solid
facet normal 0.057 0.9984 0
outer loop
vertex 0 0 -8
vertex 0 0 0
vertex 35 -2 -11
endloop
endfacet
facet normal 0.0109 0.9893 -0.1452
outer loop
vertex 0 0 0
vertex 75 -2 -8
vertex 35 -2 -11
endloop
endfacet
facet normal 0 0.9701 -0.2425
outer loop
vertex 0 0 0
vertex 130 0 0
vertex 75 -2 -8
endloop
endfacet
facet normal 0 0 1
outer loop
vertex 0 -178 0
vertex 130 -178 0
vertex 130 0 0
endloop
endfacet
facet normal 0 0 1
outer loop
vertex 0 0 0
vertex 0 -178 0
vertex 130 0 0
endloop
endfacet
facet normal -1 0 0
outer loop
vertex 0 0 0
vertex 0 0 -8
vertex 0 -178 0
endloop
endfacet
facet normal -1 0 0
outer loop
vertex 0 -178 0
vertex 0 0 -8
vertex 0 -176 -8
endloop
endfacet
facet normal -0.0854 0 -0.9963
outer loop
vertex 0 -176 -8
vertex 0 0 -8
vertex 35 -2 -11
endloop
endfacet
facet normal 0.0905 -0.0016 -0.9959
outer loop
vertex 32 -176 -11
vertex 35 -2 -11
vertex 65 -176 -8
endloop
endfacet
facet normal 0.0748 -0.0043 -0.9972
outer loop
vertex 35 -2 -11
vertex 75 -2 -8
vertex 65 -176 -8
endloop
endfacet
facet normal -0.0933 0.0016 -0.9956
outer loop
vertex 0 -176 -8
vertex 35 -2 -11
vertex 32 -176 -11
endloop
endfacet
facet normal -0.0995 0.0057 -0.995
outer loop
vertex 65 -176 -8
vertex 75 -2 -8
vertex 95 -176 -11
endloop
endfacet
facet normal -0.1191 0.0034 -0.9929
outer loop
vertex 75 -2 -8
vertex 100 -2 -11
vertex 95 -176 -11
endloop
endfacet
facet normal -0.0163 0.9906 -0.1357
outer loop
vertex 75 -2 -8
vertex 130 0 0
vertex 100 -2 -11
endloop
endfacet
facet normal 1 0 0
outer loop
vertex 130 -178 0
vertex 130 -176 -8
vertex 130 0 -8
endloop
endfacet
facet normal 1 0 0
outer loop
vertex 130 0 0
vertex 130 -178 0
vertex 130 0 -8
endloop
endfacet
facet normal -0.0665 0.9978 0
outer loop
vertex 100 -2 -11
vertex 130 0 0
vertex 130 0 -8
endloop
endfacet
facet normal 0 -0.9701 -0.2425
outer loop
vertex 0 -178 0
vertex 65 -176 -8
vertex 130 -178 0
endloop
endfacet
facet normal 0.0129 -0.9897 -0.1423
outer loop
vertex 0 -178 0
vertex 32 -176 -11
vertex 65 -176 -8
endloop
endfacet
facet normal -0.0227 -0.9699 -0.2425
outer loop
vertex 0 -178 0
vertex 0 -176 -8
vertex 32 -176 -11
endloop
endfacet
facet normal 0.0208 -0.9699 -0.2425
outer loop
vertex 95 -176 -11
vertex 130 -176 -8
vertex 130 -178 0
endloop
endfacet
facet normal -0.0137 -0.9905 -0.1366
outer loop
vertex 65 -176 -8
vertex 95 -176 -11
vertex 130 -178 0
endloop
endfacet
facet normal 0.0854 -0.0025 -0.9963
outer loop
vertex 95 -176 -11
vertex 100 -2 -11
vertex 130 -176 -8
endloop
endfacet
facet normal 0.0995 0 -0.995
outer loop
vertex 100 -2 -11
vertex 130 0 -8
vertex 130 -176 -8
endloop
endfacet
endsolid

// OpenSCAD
kobo_aura_hd();

module kobo_aura_hd() {
    polyhedron(
        points = [
            // When looking at the frontside
            [0, 0, 0], // 0, Top left corner
            [130, 0, 0], // 1, Top right corner
            [130, -178, 0], // 2, Bottom right corner
            [0, -178, 0], // 3, Bottom left corner

            // When looking at the backside
            [130, -176, -8], // 4, Bottom left corner
            [0, -176, -8], // 5, Bottom right corner
            [0, 0, -8], // 6, Top right corner
            [130, 0, -8], // 7, Top left corner

            [100, -2, -11], // 8, Top left hill
            [75, -2, -8], // 9, Top middle valley
            [35, -2, -11], // 10, Top right hill
            [95, -176, -11], // 11, Bottom left hill
            [65, -176, -8], // 12, Bottom middle valley
            [32, -176, -11] // 13, Bottom right hill
        ],
        faces = [
            [0, 1, 2, 3], // Front face
            [3, 5, 6, 0], // Left face
            [0, 6, 10, 9, 8, 7, 1], // Top face
            [1, 7, 4, 2], // Right face
            [2, 4, 11, 12, 13, 5, 3], // Bottom face

            // Back faces, starting to the right …
            [5, 13, 10, 6], // first column
            [13, 12, 9, 10], // second column, with kobo logo
            [12, 11, 8, 9], // third colmun
            [11, 4, 7, 8], // fourth column
        ]);
}
